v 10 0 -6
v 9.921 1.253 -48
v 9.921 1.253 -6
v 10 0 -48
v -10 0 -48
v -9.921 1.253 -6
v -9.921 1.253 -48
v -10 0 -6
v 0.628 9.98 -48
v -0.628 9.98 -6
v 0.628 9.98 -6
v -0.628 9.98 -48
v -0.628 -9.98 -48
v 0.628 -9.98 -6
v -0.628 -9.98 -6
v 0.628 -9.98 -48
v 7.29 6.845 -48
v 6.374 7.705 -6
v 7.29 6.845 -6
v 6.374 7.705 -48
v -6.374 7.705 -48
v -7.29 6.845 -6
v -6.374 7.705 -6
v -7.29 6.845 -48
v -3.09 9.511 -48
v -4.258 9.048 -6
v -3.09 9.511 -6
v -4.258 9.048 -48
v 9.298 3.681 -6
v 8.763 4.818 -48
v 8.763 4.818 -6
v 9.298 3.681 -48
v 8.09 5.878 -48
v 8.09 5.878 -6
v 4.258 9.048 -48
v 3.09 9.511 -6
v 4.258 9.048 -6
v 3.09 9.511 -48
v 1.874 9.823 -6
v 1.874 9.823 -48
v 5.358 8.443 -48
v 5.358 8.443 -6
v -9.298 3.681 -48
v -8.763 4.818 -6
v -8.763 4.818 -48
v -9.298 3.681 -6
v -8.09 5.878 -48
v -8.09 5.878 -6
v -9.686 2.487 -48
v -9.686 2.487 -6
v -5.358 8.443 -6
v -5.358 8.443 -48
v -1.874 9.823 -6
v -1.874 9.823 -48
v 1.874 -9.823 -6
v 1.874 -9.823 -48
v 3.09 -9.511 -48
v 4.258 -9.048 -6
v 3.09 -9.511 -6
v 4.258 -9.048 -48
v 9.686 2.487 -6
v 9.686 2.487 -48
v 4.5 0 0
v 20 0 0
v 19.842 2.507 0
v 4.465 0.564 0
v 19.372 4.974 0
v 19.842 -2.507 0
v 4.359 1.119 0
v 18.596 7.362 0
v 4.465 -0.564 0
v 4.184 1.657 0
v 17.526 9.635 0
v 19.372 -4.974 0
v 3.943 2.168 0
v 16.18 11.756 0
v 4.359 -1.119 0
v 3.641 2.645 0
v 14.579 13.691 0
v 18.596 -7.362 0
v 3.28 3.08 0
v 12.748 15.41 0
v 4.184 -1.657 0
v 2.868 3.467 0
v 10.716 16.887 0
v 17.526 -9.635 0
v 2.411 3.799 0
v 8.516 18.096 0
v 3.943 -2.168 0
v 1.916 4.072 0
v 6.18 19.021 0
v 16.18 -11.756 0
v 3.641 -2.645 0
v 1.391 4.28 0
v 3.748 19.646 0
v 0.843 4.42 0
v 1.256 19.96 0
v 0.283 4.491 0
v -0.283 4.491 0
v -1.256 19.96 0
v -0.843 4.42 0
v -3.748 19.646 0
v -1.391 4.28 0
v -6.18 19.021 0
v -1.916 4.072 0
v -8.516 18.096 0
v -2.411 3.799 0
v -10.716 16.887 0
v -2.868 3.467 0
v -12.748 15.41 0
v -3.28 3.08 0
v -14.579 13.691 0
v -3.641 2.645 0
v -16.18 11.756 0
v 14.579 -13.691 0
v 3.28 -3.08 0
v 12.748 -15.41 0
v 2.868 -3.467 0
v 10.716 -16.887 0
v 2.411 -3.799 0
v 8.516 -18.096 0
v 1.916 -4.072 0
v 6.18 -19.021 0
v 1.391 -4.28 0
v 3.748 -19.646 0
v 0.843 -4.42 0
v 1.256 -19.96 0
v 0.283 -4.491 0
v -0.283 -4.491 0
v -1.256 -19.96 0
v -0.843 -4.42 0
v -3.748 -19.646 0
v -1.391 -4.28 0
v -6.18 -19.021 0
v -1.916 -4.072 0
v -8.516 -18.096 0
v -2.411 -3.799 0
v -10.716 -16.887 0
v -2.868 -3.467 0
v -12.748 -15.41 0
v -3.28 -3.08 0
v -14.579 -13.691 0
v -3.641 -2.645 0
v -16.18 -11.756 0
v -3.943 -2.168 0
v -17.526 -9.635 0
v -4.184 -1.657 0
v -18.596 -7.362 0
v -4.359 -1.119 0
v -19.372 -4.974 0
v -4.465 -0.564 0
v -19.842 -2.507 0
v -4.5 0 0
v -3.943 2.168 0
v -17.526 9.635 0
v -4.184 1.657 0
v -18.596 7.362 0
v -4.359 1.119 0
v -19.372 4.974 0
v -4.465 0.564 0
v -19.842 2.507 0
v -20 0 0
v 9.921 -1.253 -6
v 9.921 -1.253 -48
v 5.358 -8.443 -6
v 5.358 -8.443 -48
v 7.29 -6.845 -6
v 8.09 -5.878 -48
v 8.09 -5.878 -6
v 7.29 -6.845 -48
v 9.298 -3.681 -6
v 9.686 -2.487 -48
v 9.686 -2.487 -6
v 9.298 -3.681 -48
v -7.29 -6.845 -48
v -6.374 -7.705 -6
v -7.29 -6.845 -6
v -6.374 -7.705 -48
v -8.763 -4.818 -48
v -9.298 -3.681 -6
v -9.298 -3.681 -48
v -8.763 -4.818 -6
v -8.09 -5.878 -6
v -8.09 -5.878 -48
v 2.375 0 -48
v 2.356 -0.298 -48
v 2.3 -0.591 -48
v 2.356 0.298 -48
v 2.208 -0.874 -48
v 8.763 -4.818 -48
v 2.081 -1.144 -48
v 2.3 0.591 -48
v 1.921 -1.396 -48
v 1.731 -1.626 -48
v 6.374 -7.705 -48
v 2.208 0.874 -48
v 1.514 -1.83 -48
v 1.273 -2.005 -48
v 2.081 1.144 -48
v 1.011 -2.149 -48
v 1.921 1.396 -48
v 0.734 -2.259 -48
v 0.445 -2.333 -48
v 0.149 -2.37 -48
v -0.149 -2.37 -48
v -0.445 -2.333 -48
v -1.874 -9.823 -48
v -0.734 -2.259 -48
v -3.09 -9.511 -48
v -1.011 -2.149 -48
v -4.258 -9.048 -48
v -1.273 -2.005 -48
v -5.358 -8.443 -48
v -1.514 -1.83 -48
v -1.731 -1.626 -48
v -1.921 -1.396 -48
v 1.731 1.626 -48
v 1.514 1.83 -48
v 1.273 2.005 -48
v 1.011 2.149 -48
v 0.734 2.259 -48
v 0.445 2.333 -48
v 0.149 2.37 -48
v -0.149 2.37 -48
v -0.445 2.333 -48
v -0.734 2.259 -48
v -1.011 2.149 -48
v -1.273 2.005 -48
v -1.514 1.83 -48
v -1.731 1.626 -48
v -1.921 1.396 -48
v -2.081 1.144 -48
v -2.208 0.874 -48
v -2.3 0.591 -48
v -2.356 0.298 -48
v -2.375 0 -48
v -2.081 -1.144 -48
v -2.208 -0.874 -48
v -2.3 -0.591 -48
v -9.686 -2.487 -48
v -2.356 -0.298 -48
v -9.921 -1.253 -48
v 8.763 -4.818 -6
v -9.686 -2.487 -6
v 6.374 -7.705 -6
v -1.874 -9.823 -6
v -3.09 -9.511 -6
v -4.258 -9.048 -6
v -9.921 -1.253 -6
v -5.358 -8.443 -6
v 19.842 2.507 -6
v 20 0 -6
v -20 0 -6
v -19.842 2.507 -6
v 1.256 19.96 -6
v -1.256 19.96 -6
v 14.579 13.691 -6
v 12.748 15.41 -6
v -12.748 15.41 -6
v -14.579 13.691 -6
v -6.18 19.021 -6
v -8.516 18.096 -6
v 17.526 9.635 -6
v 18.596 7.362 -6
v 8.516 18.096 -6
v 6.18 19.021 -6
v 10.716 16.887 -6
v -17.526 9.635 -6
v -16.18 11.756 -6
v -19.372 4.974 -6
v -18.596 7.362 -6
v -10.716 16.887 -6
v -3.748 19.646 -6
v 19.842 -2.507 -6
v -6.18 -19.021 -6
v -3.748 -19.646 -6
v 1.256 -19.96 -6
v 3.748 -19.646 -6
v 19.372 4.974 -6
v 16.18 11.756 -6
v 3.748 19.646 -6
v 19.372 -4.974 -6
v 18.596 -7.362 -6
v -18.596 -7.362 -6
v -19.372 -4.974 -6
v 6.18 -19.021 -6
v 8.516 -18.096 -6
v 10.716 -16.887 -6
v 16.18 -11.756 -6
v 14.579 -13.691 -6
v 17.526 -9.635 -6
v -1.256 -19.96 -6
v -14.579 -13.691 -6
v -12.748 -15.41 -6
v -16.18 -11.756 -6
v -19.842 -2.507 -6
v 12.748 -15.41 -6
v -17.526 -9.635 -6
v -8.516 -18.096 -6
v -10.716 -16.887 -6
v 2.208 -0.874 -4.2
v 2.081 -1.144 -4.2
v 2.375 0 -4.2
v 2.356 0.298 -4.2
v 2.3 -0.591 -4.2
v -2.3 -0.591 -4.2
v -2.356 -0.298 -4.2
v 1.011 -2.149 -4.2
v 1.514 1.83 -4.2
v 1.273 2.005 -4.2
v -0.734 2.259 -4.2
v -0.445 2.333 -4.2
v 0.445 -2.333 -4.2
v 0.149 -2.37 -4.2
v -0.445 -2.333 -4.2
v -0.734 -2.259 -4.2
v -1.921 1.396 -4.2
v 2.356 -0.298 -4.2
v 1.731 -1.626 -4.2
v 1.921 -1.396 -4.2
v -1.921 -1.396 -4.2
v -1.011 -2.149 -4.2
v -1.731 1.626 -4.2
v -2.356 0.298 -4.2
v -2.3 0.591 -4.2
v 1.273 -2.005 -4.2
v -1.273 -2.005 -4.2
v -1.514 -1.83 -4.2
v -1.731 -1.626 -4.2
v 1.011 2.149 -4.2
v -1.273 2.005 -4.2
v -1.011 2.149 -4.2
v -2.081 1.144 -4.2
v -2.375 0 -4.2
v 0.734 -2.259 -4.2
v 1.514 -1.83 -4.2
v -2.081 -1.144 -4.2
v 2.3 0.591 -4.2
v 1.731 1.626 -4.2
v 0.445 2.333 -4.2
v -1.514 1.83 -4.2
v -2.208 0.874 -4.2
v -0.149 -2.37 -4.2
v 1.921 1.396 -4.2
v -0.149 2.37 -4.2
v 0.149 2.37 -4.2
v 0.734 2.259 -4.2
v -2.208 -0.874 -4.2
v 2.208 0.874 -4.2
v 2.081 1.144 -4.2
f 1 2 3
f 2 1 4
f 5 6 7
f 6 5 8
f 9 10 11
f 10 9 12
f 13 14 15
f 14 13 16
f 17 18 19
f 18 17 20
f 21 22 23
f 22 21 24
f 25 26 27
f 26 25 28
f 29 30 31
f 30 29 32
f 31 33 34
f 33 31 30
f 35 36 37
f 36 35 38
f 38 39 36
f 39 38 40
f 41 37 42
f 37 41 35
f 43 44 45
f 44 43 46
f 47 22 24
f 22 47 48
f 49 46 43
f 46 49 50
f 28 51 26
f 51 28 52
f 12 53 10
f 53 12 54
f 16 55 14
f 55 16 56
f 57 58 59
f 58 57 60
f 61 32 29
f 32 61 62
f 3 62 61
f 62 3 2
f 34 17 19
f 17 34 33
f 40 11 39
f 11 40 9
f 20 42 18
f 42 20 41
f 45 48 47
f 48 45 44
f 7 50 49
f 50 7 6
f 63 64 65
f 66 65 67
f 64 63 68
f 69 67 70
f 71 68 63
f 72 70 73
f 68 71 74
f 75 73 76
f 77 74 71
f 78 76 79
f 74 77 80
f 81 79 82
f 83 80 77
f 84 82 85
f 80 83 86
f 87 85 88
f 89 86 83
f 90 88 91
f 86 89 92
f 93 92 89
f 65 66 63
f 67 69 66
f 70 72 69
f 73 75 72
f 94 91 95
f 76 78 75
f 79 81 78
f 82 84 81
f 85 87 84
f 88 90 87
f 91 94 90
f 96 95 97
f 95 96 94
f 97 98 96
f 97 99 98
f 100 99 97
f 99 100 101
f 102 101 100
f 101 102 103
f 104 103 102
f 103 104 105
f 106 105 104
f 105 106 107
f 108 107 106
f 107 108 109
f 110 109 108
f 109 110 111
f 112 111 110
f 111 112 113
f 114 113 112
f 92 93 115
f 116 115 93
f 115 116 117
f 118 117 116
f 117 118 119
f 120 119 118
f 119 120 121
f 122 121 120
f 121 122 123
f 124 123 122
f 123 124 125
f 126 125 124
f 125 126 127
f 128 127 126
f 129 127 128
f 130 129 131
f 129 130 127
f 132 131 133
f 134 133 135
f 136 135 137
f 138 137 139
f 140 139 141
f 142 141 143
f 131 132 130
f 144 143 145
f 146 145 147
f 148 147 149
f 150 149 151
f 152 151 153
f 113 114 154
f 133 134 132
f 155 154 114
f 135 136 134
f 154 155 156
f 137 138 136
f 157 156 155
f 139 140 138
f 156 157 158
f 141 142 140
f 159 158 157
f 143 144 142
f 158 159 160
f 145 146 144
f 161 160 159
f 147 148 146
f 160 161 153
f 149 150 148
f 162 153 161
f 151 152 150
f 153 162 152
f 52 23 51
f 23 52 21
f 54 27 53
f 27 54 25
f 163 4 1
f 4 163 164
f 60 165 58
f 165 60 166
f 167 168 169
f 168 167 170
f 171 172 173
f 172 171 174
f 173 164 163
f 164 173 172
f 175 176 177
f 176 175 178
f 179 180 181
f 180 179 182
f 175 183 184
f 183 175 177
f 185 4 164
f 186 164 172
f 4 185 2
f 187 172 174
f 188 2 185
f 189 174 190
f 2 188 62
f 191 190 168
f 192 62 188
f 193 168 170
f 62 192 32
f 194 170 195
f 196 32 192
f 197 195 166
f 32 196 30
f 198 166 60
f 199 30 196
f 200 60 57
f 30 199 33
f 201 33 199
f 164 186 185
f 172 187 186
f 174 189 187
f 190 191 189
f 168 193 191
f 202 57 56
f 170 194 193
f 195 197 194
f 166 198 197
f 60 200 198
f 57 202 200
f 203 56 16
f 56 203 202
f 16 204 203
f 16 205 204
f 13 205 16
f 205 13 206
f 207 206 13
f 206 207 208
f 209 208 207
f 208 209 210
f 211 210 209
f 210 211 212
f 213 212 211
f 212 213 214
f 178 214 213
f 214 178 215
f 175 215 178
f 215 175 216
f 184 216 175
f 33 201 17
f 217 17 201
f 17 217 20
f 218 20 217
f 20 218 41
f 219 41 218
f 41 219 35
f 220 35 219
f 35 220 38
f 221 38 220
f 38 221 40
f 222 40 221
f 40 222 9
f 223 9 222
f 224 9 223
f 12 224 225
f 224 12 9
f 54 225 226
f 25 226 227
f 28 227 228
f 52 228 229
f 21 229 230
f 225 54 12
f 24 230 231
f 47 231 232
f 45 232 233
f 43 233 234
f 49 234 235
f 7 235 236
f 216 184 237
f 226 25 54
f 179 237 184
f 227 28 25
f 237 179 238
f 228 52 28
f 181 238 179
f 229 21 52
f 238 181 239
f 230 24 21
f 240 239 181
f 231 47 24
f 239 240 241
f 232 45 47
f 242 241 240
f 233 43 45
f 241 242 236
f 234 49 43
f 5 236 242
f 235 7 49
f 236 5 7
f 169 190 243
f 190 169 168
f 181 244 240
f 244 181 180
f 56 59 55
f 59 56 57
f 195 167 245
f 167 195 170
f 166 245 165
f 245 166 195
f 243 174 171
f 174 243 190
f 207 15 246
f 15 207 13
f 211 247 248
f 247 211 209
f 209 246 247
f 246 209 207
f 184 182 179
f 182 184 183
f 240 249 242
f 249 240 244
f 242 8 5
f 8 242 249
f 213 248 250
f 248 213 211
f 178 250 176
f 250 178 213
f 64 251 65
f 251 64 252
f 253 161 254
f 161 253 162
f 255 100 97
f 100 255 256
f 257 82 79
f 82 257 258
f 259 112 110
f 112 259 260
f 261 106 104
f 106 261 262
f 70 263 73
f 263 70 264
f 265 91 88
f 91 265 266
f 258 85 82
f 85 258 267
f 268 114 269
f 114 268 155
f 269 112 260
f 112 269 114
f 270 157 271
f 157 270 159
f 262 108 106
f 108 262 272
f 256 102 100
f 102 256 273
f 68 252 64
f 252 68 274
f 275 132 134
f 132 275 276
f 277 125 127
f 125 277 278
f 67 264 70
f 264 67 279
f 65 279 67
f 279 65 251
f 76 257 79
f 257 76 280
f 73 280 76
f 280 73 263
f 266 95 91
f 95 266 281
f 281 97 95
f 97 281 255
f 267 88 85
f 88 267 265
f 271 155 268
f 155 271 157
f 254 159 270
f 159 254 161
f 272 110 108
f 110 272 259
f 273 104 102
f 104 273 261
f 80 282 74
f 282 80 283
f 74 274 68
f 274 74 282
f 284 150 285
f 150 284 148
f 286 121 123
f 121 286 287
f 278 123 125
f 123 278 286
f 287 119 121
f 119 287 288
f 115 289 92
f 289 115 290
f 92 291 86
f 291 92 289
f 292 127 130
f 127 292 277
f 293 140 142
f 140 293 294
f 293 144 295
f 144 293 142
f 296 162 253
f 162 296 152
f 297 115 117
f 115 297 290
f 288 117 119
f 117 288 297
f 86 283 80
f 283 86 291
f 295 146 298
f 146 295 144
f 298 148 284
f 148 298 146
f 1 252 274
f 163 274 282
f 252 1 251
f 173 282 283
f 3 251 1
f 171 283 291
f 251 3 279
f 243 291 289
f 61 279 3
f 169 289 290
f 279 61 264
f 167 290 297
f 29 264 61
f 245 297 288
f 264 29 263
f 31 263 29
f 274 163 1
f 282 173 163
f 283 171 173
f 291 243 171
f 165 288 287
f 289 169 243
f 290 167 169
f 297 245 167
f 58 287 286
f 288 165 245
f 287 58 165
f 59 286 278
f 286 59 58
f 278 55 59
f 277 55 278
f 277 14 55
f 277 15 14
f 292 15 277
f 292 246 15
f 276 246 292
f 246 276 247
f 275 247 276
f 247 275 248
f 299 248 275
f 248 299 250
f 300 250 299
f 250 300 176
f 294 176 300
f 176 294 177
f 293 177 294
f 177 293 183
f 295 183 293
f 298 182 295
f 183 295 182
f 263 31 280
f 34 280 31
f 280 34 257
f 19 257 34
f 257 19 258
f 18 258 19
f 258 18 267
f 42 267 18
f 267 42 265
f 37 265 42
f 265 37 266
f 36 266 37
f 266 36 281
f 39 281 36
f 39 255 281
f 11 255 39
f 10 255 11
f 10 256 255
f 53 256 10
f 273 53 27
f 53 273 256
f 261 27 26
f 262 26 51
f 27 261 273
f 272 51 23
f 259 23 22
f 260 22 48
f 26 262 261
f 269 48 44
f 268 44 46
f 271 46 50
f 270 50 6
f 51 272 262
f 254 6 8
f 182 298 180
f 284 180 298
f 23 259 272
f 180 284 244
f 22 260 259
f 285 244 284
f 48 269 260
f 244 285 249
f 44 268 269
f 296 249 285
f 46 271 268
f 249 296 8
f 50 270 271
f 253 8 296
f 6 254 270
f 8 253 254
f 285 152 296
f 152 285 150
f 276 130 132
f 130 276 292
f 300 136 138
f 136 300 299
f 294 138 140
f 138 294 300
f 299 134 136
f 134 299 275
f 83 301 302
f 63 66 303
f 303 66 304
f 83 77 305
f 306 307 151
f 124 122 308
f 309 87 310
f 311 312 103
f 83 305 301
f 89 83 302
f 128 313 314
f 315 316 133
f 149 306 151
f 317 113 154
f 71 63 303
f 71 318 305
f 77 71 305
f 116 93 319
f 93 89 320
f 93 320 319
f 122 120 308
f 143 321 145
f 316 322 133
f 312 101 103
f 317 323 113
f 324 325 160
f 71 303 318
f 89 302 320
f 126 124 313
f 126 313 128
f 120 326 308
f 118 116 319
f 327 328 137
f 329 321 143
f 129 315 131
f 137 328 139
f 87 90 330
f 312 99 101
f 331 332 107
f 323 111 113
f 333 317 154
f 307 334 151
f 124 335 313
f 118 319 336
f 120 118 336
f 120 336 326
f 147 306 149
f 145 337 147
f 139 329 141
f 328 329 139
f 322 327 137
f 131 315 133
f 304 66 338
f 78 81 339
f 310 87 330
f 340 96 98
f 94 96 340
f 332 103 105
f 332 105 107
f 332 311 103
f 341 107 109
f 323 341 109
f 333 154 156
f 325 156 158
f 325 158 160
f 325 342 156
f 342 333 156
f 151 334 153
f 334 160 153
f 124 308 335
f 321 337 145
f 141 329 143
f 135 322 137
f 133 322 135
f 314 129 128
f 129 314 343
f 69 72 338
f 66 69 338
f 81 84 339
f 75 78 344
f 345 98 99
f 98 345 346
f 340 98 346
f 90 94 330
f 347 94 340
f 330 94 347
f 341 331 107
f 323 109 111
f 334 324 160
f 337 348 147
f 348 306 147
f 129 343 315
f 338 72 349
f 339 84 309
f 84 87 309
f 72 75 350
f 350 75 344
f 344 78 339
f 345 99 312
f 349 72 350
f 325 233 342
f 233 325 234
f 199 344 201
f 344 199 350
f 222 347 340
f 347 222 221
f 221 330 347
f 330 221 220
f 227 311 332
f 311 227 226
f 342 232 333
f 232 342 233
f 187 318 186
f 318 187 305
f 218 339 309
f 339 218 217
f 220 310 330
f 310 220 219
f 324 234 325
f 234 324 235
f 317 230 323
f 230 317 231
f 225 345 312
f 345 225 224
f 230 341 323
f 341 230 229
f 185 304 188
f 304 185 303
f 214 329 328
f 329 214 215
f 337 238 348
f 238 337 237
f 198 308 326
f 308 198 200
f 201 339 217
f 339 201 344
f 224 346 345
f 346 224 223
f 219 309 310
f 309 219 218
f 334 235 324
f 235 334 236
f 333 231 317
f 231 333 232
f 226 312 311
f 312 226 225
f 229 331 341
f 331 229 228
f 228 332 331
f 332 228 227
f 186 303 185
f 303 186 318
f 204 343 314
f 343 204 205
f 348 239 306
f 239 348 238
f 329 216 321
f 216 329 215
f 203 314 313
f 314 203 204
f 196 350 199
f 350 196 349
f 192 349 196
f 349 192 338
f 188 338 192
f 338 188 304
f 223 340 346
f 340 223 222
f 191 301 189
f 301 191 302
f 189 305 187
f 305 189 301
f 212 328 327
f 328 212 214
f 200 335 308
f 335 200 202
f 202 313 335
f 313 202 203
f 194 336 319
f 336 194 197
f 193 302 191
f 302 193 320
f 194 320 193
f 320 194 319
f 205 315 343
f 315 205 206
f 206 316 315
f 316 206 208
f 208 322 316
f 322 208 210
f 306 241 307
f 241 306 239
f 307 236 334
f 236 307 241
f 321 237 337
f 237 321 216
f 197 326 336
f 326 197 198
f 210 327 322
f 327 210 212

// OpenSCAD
$fn = 50;


difference() {
	union() {
		translate(v = [0, 0, -48.0000000000]) {
			cylinder(h = 48, r = 10.0000000000);
		}
		translate(v = [0, 0, -6.0000000000]) {
			cylinder(h = 6, r = 20.0000000000);
		}
	}
	union() {
		translate(v = [0, 0, 0]) {
			rotate(a = [0, 0, 0]) {
				difference() {
					union() {
						#translate(v = [0, 0, -48.0000000000]) {
							cylinder(h = 48, r = 2.2500000000);
						}
						#translate(v = [0, 0, -4.2000000000]) {
							cylinder(h = 4.2000000000, r1 = 2.3750000000, r2 = 4.5000000000);
						}
						#translate(v = [0, 0, -48.0000000000]) {
							cylinder(h = 48, r = 2.3750000000);
						}
						#translate(v = [0, 0, -48.0000000000]) {
							cylinder(h = 48, r = 2.2500000000);
						}
					}
					union();
				}
			}
		}
	}
}
